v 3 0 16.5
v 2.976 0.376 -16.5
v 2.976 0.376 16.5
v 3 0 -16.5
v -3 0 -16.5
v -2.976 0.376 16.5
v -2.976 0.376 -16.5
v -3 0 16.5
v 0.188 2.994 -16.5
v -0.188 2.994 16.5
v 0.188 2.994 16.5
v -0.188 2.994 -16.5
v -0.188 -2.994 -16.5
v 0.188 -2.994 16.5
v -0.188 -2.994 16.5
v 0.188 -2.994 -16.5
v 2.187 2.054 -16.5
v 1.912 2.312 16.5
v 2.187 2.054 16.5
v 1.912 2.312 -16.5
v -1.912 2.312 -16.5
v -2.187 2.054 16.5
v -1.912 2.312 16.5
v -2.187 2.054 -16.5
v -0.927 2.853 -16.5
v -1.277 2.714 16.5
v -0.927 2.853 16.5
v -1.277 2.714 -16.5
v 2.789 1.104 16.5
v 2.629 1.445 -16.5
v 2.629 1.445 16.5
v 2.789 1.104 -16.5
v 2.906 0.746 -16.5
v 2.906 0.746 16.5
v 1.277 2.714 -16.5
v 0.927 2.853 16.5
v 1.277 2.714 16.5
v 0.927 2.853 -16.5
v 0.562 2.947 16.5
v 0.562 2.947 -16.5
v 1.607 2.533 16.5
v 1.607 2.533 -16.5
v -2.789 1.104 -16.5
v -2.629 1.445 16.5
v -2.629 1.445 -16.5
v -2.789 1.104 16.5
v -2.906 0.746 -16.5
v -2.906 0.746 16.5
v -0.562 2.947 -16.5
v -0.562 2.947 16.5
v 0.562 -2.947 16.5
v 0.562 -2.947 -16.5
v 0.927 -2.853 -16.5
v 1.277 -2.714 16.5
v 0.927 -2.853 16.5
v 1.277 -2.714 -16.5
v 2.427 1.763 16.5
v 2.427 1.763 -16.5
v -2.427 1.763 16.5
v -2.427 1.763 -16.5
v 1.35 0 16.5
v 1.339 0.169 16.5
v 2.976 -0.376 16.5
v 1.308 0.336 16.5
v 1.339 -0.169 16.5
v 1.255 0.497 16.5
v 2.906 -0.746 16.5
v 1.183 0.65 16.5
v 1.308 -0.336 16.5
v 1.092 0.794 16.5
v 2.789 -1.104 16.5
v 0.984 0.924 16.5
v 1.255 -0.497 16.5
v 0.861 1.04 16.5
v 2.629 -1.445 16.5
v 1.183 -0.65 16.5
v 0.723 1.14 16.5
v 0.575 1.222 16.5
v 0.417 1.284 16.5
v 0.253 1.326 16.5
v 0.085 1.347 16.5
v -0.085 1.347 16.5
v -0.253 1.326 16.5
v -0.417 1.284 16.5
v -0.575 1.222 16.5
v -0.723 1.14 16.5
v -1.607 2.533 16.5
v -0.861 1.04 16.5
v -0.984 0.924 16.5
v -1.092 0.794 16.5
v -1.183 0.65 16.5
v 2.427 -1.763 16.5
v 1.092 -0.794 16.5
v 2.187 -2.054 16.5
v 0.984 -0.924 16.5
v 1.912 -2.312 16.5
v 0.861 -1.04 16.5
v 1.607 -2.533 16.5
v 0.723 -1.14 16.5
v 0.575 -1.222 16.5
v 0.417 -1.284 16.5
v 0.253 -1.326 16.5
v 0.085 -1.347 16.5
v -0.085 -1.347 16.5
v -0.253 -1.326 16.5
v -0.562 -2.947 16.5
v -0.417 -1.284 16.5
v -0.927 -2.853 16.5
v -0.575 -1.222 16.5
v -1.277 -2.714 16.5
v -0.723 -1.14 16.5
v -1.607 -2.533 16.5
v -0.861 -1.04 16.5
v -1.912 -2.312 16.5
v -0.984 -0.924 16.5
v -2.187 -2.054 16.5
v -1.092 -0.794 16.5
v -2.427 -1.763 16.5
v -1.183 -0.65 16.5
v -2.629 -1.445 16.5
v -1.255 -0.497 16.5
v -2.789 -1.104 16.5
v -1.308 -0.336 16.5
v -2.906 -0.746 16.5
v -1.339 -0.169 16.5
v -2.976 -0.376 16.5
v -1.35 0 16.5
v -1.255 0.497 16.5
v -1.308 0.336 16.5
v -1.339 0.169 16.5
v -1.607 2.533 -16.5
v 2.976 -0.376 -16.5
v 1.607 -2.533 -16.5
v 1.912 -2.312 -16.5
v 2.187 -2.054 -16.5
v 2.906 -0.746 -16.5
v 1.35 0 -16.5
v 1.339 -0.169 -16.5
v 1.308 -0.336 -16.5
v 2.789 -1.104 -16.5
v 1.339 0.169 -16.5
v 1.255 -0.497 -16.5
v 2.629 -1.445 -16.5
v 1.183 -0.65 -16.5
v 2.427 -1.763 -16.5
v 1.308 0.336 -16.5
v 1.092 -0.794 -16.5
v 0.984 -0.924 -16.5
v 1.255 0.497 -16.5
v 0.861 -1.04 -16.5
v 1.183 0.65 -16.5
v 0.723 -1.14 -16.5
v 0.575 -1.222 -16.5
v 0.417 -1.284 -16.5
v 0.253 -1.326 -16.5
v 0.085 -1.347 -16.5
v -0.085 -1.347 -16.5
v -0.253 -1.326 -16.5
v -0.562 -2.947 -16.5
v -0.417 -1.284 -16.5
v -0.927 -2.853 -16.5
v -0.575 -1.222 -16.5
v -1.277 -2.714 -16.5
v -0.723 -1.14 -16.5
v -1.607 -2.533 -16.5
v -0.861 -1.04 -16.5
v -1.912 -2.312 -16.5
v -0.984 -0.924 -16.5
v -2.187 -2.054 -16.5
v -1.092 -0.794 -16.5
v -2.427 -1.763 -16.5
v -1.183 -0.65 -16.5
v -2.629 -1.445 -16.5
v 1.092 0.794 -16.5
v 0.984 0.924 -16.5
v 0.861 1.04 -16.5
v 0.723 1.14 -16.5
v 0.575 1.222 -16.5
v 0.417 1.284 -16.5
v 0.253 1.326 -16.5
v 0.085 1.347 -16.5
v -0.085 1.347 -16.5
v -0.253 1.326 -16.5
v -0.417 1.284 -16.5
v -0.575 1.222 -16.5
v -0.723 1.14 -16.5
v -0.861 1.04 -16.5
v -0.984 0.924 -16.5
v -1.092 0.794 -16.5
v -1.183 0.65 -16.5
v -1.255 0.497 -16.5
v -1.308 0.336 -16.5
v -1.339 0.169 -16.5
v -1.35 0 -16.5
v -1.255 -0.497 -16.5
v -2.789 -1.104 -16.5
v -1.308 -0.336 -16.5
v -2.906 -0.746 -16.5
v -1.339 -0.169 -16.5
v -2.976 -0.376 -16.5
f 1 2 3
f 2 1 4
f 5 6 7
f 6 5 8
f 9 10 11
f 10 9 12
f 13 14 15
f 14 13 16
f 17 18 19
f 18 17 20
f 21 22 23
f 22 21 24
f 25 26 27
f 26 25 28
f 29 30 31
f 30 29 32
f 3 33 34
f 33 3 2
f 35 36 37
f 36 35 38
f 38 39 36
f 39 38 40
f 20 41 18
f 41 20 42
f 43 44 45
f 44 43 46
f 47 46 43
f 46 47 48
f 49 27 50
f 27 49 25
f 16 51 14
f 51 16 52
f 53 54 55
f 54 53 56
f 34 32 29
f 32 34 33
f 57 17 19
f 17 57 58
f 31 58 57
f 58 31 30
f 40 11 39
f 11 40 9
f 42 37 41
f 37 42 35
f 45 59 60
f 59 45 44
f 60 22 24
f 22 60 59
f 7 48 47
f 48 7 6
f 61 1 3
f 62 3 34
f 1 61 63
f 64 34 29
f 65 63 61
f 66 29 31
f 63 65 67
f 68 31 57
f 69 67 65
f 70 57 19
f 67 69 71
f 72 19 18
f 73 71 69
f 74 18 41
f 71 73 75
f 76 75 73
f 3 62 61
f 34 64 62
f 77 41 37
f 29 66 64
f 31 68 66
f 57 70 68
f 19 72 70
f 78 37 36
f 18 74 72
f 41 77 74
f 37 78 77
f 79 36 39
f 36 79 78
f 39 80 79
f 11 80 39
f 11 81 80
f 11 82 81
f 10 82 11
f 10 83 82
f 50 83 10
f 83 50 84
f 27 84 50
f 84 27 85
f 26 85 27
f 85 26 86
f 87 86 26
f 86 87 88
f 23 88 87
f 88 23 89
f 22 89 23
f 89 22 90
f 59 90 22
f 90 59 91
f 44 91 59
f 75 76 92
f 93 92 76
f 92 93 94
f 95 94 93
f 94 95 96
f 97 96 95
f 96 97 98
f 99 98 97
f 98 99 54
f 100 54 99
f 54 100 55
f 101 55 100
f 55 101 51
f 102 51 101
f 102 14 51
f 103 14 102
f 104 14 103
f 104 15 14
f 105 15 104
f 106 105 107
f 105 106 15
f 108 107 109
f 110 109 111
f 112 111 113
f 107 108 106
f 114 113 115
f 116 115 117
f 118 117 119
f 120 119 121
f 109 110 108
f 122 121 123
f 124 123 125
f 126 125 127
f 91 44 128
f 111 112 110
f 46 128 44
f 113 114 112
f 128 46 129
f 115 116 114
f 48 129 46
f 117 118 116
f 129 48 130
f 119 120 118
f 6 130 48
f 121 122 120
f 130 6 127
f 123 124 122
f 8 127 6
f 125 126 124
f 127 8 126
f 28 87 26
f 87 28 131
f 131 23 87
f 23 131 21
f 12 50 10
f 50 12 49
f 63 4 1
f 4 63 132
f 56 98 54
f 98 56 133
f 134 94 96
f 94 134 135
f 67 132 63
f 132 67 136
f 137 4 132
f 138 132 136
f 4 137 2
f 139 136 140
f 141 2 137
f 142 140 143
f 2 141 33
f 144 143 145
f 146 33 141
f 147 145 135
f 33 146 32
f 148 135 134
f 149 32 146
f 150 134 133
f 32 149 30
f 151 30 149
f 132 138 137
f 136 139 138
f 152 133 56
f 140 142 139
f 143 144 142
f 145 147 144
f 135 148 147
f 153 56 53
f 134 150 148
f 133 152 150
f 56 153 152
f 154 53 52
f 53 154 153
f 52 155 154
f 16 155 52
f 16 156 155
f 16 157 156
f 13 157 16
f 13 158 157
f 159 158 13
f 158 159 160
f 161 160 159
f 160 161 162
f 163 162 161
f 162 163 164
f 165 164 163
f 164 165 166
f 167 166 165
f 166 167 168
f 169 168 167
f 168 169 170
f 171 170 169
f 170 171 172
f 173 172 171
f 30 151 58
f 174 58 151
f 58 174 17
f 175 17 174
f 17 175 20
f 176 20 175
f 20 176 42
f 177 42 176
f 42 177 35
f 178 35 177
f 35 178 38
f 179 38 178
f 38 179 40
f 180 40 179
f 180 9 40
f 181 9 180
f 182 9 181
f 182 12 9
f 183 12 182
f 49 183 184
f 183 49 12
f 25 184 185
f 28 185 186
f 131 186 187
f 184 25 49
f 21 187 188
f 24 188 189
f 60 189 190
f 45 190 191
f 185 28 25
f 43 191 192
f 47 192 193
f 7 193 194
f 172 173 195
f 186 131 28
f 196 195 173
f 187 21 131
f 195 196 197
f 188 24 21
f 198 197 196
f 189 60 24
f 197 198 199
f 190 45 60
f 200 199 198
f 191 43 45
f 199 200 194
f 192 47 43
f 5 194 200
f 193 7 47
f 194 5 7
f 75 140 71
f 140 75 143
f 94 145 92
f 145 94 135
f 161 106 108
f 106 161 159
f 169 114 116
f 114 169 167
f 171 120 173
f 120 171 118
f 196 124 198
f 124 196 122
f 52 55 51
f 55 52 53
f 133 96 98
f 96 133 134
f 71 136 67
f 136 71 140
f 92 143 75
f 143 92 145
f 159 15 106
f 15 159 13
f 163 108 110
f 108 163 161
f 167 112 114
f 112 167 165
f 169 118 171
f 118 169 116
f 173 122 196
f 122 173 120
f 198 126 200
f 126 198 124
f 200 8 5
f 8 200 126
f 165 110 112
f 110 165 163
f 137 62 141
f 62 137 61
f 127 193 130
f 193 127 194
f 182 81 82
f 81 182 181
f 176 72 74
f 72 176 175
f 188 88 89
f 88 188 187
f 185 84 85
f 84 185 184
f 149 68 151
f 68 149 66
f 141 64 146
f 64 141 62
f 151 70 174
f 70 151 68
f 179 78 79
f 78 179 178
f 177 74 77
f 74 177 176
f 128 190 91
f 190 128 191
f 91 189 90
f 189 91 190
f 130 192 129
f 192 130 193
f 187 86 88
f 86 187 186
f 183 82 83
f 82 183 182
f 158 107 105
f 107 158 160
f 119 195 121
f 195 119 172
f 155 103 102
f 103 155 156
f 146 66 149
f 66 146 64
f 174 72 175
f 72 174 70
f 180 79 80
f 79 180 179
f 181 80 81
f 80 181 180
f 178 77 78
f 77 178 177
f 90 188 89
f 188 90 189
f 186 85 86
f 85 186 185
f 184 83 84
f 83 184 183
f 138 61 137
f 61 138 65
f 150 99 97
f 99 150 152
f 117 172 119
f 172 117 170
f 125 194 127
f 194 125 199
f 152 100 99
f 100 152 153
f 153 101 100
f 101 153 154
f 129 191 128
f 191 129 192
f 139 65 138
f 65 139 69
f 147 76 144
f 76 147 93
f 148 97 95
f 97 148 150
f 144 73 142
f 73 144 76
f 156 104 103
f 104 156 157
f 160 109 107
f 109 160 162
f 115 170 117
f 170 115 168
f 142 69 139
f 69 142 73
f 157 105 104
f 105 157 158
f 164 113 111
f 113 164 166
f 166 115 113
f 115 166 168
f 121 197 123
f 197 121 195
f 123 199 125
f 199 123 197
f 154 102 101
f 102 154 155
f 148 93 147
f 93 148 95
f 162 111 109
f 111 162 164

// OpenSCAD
$fn = 50;


difference() {
	union() {
		translate(v = [0, 0, -16.5000000000]) {
			cylinder(h = 33, r = 3.0000000000);
		}
	}
	union() {
		translate(v = [0, 0, -100.0000000000]) {
			cylinder(h = 200, r = 1.3500000000);
		}
	}
}
